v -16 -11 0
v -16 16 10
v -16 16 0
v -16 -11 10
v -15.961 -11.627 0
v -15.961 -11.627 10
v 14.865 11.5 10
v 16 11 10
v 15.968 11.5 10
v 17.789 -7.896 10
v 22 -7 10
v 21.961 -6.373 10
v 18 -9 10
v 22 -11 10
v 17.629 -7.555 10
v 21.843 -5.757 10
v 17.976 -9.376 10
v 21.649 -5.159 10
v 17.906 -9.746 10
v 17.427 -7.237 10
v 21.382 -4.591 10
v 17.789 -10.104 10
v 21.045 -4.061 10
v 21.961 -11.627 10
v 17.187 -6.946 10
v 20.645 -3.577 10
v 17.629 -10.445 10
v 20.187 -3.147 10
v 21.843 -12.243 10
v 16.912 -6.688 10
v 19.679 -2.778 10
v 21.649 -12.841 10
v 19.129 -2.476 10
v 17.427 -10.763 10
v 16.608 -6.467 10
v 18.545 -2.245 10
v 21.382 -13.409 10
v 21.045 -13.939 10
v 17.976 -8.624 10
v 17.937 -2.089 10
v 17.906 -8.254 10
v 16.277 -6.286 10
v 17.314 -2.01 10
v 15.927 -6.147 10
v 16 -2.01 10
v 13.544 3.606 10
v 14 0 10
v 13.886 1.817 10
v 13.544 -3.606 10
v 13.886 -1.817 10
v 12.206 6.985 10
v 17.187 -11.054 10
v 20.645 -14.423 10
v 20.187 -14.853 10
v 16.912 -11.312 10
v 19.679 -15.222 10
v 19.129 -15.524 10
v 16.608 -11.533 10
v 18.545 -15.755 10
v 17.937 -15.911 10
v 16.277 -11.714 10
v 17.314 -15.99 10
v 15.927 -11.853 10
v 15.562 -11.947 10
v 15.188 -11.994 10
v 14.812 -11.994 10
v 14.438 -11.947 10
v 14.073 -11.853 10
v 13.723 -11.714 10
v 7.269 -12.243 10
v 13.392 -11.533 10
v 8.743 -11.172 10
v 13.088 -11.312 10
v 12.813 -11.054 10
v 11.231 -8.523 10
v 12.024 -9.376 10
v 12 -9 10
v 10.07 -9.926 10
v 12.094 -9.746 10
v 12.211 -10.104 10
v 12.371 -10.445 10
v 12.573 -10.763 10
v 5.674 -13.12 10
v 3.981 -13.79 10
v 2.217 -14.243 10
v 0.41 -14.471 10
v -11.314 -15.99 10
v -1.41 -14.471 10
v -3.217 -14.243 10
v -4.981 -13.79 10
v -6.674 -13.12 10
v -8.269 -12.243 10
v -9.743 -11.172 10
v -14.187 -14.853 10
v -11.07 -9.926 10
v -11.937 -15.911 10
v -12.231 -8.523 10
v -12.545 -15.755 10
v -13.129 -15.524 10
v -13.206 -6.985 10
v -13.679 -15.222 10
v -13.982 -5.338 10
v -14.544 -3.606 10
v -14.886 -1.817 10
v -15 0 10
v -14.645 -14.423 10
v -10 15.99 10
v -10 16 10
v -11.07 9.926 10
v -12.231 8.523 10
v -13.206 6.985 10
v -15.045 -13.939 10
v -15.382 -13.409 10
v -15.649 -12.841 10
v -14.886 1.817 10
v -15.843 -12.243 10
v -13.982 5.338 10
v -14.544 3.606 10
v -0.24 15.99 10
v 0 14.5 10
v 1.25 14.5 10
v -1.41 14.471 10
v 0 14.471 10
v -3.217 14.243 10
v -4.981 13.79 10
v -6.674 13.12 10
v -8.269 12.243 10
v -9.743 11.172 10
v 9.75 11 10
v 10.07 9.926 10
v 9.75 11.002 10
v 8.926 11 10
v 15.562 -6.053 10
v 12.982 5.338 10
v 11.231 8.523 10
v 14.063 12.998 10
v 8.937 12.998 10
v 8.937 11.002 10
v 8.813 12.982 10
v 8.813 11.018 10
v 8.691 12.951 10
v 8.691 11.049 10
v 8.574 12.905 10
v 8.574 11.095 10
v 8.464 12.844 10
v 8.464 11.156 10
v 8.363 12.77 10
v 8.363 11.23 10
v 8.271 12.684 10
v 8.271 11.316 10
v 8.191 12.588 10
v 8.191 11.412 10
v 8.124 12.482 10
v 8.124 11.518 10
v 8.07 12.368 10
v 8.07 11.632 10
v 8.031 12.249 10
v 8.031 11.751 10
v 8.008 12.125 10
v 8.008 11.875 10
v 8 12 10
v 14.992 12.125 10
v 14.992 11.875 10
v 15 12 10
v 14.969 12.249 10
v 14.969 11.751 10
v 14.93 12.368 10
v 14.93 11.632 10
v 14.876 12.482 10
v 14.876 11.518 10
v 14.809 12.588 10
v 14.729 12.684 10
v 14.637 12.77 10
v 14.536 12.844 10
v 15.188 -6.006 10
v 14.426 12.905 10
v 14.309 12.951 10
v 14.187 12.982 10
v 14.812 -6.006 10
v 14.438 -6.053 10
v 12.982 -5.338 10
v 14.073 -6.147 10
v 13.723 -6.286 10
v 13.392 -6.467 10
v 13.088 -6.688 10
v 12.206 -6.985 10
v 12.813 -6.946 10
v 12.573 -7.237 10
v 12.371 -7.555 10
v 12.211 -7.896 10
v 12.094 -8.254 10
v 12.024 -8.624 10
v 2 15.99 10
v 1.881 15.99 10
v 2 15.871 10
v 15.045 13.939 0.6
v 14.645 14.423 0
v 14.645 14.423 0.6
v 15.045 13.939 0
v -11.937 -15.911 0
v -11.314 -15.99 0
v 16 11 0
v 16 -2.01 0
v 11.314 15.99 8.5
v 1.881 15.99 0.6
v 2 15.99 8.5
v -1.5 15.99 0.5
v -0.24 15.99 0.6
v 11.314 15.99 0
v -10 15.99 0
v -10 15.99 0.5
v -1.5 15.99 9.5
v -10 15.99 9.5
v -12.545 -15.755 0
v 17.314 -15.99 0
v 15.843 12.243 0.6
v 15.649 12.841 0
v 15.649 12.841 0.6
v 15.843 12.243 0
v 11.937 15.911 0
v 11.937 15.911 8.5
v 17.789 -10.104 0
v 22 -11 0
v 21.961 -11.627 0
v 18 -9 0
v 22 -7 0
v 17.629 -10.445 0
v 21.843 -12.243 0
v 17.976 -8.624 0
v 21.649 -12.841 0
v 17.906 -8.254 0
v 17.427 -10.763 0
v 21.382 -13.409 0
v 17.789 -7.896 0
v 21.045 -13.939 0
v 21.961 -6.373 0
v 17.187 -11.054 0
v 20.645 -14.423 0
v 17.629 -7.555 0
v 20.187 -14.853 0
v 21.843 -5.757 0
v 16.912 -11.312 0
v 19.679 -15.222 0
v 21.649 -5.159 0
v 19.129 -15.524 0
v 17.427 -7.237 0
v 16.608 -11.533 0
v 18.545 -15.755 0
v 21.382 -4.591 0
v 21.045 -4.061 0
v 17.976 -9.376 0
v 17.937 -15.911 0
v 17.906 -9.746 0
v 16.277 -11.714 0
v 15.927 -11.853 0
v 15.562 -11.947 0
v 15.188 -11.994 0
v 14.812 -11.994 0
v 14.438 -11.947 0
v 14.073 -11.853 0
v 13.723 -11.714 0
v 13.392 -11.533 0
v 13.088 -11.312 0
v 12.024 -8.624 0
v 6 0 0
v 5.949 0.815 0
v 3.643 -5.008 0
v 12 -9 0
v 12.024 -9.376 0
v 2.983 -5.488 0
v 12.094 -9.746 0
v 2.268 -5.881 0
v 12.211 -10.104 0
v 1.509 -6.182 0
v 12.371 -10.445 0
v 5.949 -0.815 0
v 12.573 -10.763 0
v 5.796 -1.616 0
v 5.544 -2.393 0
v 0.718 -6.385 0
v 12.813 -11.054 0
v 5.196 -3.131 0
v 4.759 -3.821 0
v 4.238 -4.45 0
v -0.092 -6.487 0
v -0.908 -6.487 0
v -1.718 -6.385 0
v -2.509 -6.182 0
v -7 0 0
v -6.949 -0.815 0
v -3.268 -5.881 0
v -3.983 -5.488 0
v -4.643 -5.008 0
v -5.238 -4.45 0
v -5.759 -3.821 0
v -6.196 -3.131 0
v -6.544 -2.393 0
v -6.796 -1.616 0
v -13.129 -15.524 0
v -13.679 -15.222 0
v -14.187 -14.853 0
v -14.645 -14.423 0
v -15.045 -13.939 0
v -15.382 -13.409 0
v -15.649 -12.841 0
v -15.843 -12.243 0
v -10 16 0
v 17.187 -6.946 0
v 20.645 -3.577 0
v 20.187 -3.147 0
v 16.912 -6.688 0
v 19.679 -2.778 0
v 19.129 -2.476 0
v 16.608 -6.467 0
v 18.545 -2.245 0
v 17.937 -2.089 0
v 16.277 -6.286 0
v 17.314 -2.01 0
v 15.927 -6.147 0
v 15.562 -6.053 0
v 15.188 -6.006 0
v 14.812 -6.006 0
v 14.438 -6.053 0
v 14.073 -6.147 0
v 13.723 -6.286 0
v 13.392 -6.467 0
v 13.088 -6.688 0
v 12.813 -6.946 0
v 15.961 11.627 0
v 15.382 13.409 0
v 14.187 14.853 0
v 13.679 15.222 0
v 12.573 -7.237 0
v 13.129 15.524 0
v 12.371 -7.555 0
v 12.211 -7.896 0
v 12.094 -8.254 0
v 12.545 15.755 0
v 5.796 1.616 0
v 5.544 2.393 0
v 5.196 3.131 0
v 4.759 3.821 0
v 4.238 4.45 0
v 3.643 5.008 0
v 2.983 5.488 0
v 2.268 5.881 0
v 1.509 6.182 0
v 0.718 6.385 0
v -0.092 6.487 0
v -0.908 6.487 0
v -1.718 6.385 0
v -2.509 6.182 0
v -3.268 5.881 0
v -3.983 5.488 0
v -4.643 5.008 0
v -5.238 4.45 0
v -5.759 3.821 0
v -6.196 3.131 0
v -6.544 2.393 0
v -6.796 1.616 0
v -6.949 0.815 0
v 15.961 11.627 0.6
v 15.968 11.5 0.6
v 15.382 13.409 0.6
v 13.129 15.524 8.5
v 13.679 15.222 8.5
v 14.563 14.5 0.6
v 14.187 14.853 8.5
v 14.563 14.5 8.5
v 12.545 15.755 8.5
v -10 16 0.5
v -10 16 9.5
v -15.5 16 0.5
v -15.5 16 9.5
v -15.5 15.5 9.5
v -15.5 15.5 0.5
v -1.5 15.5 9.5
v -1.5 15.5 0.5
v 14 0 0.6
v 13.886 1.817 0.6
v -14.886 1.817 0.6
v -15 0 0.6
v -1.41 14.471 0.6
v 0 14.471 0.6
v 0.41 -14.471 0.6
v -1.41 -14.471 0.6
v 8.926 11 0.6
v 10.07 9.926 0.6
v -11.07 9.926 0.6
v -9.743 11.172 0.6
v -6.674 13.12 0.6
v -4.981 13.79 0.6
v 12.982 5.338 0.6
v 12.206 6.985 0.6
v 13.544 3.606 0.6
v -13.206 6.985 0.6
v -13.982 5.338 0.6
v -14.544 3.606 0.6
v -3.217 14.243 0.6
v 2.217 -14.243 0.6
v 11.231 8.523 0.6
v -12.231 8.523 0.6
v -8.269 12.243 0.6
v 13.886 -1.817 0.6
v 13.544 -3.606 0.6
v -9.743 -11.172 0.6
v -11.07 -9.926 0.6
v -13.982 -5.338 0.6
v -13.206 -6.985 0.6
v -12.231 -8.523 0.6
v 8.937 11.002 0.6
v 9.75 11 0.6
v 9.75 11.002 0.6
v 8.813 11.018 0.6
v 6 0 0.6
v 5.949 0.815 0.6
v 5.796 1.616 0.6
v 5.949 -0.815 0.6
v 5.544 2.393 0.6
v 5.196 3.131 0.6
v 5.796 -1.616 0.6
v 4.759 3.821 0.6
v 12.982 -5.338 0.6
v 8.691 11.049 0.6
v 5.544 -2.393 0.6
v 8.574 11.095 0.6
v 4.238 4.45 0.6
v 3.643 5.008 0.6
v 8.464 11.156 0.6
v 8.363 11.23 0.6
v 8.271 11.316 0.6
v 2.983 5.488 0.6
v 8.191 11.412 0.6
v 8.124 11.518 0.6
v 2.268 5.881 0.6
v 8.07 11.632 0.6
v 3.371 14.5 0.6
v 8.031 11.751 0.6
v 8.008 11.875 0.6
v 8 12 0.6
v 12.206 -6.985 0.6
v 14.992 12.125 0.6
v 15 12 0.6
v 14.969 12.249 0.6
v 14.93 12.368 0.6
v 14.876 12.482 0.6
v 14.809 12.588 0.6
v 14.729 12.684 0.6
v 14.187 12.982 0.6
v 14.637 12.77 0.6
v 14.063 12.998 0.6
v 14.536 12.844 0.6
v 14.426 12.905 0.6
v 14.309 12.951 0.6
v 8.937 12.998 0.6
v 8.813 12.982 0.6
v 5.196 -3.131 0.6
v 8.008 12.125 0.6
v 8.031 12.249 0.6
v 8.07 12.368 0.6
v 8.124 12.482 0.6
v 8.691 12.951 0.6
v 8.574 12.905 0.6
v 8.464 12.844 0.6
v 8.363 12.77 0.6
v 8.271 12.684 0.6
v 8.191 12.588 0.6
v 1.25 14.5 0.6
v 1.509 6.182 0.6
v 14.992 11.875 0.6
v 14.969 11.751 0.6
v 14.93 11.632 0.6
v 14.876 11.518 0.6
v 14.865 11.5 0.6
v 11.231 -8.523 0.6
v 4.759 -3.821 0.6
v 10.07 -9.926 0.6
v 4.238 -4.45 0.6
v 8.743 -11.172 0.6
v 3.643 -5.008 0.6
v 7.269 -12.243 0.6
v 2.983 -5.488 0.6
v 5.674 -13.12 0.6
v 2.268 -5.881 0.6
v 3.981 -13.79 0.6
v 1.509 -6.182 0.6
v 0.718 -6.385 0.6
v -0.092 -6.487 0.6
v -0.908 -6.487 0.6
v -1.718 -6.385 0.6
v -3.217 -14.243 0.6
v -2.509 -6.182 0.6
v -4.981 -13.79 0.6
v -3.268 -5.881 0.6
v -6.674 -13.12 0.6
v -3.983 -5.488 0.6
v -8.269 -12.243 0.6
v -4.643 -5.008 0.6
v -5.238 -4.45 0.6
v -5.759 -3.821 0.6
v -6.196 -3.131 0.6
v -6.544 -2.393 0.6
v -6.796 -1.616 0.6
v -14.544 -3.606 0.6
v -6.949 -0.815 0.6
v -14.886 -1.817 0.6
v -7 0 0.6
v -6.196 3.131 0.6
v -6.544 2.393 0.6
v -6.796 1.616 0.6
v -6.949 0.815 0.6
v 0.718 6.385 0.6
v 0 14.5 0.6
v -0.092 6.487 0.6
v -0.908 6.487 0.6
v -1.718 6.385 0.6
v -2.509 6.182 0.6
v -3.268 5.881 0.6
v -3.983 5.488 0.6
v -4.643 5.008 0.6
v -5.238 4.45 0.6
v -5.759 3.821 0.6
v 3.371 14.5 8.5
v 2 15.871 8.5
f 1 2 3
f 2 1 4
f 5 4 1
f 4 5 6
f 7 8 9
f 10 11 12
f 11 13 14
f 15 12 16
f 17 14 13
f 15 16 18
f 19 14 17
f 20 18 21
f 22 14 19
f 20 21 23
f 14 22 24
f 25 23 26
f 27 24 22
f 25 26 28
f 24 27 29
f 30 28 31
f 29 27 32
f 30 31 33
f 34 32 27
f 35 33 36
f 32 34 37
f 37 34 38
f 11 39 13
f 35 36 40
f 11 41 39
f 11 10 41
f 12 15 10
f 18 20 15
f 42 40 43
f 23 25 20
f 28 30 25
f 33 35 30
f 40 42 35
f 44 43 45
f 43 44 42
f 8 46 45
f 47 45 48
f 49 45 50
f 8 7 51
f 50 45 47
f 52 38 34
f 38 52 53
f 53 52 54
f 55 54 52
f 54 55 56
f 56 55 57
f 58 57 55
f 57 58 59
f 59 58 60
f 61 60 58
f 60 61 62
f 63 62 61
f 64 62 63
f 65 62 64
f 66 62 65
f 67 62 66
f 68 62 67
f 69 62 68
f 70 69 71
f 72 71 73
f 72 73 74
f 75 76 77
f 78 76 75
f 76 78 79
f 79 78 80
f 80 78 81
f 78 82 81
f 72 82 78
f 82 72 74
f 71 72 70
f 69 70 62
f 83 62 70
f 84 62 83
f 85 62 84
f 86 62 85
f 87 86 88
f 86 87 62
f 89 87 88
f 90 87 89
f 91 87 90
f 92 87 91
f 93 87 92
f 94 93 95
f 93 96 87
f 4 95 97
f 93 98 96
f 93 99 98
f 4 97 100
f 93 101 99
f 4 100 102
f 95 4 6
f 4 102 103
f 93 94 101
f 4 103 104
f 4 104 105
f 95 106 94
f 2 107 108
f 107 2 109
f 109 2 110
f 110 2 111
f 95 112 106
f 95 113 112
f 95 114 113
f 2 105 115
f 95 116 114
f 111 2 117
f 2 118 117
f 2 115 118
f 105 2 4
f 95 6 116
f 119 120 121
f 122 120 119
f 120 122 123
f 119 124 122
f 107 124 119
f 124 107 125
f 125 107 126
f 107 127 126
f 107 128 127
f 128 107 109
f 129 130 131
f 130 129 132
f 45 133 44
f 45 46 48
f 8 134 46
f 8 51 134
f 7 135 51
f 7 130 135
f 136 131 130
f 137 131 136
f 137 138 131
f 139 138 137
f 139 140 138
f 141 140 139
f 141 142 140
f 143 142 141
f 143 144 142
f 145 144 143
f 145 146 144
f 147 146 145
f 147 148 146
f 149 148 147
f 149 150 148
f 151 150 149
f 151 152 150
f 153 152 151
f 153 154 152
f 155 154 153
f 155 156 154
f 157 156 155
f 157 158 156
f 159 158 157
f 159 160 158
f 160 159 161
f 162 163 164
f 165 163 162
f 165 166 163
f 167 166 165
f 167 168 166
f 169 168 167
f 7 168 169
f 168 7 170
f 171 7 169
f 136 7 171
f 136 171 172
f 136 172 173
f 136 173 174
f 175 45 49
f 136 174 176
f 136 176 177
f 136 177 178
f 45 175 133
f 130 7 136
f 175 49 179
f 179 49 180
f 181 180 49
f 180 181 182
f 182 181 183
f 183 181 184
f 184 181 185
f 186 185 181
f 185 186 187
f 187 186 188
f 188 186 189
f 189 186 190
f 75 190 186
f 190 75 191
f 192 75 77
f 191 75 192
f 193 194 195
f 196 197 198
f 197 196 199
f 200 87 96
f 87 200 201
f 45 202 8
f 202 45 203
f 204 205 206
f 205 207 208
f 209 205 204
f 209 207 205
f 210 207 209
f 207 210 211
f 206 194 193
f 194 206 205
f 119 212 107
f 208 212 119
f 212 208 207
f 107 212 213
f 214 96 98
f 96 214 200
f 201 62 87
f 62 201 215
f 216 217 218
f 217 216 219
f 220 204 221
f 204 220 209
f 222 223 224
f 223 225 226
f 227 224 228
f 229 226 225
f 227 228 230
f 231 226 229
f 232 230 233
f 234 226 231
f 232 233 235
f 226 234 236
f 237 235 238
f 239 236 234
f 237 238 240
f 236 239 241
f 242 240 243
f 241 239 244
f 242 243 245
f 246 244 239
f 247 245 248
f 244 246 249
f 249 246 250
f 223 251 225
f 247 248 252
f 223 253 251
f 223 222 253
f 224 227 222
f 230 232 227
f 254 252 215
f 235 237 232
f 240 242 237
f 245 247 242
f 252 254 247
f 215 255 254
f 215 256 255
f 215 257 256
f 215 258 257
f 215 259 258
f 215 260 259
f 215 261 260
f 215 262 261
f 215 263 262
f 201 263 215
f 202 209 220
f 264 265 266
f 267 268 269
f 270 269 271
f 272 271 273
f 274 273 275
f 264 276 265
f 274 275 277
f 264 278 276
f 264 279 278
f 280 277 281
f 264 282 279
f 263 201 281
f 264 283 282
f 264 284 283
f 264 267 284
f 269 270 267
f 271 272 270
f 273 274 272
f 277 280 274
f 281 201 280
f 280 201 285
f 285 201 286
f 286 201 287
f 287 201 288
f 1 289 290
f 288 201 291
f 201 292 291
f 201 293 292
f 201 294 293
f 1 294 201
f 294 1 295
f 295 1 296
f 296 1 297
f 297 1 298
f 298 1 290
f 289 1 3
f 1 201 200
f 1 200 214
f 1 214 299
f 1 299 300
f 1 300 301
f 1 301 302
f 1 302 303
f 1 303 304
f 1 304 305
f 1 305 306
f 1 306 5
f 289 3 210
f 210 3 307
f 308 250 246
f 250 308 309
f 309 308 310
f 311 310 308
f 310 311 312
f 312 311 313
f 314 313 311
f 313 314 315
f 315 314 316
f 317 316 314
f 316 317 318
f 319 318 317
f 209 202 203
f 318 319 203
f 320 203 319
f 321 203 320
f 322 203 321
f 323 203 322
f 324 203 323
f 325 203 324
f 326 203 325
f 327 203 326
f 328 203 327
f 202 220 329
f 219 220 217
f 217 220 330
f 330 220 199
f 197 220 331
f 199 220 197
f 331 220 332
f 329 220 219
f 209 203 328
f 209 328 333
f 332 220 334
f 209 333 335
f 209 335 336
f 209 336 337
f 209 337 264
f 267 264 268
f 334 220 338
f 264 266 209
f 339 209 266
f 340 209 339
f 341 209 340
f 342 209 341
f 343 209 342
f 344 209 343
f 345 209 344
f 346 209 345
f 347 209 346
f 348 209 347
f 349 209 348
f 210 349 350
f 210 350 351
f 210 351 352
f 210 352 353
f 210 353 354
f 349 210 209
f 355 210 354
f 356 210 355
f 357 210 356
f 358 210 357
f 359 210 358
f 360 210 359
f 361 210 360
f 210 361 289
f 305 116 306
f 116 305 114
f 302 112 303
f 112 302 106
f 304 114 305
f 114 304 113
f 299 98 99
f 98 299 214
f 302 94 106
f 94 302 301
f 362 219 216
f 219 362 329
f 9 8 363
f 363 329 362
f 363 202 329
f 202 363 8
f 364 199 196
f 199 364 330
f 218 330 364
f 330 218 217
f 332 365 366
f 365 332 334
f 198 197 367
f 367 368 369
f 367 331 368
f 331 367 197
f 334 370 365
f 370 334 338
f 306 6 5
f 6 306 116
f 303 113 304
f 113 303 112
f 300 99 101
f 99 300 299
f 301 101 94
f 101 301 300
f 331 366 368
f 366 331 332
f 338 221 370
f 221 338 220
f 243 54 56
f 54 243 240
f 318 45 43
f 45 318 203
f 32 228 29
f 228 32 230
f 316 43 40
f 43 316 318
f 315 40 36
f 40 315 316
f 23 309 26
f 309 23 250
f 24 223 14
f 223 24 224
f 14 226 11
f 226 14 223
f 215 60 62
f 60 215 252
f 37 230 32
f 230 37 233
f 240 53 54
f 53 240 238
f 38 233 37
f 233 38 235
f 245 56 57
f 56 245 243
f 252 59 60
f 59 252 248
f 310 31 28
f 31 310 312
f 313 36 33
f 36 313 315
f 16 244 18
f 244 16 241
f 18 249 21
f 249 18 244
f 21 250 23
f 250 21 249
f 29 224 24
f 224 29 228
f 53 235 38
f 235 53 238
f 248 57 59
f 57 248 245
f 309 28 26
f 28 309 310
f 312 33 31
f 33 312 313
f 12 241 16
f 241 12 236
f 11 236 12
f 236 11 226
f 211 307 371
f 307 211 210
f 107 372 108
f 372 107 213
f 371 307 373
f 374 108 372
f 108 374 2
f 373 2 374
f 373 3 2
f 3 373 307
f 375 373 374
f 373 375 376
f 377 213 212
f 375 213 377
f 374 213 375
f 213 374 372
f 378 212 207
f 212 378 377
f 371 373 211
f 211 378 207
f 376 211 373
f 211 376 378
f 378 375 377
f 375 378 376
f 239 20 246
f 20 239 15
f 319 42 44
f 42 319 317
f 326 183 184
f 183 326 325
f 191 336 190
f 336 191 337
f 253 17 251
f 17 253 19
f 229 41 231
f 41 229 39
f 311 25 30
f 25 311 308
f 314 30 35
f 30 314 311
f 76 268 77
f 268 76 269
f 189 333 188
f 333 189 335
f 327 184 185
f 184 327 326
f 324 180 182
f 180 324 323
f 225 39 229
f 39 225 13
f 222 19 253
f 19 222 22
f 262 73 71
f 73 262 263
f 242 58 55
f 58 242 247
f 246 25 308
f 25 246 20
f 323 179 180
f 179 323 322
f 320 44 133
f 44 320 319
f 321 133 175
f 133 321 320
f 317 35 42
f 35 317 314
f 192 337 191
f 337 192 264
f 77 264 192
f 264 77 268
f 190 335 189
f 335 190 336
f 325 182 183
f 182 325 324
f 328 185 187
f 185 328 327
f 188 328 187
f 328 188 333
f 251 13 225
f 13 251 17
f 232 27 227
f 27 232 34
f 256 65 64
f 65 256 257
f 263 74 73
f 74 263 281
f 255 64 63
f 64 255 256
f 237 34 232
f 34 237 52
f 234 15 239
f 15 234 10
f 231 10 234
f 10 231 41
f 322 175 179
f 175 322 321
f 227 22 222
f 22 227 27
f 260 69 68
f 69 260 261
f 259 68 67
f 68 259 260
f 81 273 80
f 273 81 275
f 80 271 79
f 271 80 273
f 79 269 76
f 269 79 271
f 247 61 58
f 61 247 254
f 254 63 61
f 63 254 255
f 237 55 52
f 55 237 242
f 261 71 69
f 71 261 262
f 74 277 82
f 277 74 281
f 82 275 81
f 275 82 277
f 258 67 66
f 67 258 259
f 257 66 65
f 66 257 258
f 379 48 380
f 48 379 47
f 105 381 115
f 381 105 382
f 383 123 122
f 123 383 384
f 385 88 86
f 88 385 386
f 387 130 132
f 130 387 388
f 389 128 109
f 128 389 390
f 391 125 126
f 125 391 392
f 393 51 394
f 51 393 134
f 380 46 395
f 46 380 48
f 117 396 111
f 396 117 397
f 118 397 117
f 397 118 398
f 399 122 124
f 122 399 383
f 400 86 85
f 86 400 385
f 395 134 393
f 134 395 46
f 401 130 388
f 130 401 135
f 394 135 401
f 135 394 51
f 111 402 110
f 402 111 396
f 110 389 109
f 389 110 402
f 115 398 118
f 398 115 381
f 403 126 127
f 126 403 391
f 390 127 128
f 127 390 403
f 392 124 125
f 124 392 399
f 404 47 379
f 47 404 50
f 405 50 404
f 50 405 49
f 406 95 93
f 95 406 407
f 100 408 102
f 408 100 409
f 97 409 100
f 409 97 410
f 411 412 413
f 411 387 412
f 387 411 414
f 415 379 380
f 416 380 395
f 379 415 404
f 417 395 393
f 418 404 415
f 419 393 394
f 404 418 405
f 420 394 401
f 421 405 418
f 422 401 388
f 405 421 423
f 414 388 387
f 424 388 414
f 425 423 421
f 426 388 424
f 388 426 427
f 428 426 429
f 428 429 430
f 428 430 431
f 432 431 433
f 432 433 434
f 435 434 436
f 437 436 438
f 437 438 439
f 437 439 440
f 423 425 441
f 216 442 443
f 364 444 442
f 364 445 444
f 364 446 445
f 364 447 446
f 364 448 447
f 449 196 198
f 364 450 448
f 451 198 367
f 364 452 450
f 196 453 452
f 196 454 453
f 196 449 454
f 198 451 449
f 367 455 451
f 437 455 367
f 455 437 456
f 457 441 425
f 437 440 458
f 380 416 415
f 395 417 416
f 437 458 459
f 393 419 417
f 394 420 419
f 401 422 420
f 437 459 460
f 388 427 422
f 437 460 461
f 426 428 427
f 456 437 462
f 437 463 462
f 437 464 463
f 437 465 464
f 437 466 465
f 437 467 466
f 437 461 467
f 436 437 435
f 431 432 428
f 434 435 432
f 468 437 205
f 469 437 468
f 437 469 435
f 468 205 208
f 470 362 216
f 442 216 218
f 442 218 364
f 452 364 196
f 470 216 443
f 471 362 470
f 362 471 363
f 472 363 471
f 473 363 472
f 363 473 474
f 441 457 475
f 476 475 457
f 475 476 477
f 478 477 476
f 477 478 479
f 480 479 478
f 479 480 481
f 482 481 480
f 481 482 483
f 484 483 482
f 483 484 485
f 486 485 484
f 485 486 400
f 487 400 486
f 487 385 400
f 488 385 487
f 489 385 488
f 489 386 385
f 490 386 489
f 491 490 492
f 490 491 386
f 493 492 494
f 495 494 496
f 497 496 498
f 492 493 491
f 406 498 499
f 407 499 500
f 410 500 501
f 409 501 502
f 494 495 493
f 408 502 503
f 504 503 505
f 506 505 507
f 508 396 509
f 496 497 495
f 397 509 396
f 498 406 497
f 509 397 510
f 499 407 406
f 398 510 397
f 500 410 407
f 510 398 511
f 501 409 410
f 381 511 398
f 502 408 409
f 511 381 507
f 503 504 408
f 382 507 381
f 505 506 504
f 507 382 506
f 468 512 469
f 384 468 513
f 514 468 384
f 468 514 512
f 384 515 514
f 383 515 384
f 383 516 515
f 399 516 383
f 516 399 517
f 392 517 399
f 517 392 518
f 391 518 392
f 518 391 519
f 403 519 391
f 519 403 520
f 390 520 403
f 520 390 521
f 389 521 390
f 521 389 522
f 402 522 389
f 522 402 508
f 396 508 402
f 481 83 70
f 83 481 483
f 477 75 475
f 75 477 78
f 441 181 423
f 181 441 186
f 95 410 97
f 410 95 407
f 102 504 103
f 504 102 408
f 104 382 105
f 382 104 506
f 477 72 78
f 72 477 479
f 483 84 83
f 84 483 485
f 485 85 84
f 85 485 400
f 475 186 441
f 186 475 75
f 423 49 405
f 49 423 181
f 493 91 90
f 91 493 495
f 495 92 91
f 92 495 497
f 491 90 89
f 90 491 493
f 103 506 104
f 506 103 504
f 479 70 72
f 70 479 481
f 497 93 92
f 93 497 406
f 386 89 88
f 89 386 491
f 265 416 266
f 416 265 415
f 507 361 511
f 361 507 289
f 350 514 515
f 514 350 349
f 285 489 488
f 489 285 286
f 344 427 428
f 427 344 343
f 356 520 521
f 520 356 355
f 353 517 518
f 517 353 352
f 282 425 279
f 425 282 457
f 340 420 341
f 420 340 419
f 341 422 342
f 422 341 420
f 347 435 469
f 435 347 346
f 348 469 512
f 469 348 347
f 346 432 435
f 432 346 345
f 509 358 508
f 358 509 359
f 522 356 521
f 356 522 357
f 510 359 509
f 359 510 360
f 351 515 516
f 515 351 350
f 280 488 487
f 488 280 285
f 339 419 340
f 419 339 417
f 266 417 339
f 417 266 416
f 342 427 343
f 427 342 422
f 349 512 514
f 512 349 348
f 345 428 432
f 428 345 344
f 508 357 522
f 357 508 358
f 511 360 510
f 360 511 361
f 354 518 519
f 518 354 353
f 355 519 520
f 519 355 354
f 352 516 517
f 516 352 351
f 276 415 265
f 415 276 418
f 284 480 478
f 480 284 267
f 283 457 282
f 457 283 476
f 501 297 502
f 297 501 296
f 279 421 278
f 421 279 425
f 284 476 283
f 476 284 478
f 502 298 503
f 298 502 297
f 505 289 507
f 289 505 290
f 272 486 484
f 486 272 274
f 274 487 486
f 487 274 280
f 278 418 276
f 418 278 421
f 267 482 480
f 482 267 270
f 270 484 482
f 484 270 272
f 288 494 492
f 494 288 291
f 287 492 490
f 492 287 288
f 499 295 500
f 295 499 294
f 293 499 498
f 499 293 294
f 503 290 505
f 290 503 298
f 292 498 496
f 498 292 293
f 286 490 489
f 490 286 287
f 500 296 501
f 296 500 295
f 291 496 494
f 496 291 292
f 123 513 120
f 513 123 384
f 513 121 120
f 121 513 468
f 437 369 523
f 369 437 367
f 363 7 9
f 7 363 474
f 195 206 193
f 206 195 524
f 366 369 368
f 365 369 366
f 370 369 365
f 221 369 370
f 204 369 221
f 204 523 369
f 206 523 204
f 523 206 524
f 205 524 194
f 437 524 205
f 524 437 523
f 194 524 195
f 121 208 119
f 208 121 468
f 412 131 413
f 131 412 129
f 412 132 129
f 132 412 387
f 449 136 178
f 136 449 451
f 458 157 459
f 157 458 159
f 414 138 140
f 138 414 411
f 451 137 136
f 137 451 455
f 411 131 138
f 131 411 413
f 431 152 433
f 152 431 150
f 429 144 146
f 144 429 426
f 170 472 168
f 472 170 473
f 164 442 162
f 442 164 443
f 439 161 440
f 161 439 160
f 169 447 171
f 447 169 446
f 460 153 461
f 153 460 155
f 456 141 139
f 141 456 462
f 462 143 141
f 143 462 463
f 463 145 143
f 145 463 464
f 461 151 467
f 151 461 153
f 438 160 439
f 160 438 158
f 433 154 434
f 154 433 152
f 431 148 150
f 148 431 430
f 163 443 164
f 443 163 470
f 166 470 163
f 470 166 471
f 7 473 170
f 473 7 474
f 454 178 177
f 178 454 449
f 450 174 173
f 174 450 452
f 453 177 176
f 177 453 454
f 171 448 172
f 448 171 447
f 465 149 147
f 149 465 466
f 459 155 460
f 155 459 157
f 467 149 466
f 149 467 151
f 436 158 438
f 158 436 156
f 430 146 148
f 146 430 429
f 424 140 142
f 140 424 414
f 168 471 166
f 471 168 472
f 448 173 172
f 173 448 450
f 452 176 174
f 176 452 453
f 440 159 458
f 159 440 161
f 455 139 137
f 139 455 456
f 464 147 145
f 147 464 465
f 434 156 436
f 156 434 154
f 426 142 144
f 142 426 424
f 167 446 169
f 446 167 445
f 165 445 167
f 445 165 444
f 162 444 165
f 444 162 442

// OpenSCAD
$fn = 50;


union() {
	difference() {
		union() {
			translate(v = [0, 0, 0]) {
				rotate(a = [0, 0, 0]) {
					hull() {
						translate(v = [-11.0000000000, 11.0000000000, 0]) {
							rotate(a = [0, 0, 0]) {
								translate(v = [0, 0, 0]) {
									rotate(a = [0, 0, 0]) {
										cylinder(h = 10, r = 5);
									}
								}
							}
						}
						translate(v = [11.0000000000, 11.0000000000, 0]) {
							rotate(a = [0, 0, 0]) {
								translate(v = [0, 0, 0]) {
									rotate(a = [0, 0, 0]) {
										cylinder(h = 10, r = 5);
									}
								}
							}
						}
						translate(v = [-11.0000000000, -11.0000000000, 0]) {
							rotate(a = [0, 0, 0]) {
								translate(v = [0, 0, 0]) {
									rotate(a = [0, 0, 0]) {
										cylinder(h = 10, r = 5);
									}
								}
							}
						}
						translate(v = [11.0000000000, -11.0000000000, 0]) {
							rotate(a = [0, 0, 0]) {
								translate(v = [0, 0, 0]) {
									rotate(a = [0, 0, 0]) {
										cylinder(h = 10, r = 5);
									}
								}
							}
						}
					}
				}
			}
			translate(v = [7.5000000000, -9.0000000000, 0]) {
				rotate(a = [0, 0, 0]) {
					hull() {
						translate(v = [-9.5000000000, 2.0000000000, 0]) {
							rotate(a = [0, 0, 0]) {
								translate(v = [0, 0, 0]) {
									rotate(a = [0, 0, 0]) {
										cylinder(h = 10, r = 5);
									}
								}
							}
						}
						translate(v = [9.5000000000, 2.0000000000, 0]) {
							rotate(a = [0, 0, 0]) {
								translate(v = [0, 0, 0]) {
									rotate(a = [0, 0, 0]) {
										cylinder(h = 10, r = 5);
									}
								}
							}
						}
						translate(v = [-9.5000000000, -2.0000000000, 0]) {
							rotate(a = [0, 0, 0]) {
								translate(v = [0, 0, 0]) {
									rotate(a = [0, 0, 0]) {
										cylinder(h = 10, r = 5);
									}
								}
							}
						}
						translate(v = [9.5000000000, -2.0000000000, 0]) {
							rotate(a = [0, 0, 0]) {
								translate(v = [0, 0, 0]) {
									rotate(a = [0, 0, 0]) {
										cylinder(h = 10, r = 5);
									}
								}
							}
						}
					}
				}
			}
			translate(v = [-16.0000000000, 10.0000000000, 0]) {
				rotate(a = [0, 0, 0]) {
					cube(size = [6, 6, 10]);
				}
			}
		}
		union() {
			translate(v = [-15.5000000000, 15.5000000000, 0.5000000000]) {
				rotate(a = [0, 0, 0]) {
					cube(size = [14, 0.5000000000, 9.0000000000]);
				}
			}
			translate(v = [15.0000000000, -9.0000000000, -125.0000000000]) {
				rotate(a = [0, 0, 0]) {
					cylinder(h = 250, r = 3.0000000000);
				}
			}
			translate(v = [-0.5000000000, 0.0000000000, 0.6000000000]) {
				rotate(a = [0, 0, 0]) {
					cylinder(h = 12.4000000000, r = 14.5000000000);
				}
			}
			translate(v = [-0.5000000000, 0.0000000000, -5.0000000000]) {
				rotate(a = [0, 0, 0]) {
					cylinder(h = 10, r = 6.5000000000);
				}
			}
			translate(v = [0.0000000000, 11.5000000000, 0.6000000000]) {
				rotate(a = [0, 0, 0]) {
					cube(size = [16.0000000000, 3, 12.4000000000]);
				}
			}
			translate(v = [2.0000000000, 11.5000000000, 8.5000000000]) {
				rotate(a = [0, 0, 0]) {
					cube(size = [14.0000000000, 6, 1.5000000000]);
				}
			}
			translate(v = [-3.0000000000, 18.7500000000, 0.6000000000]) {
				rotate(a = [0, 0, -45]) {
					cube(size = [10, 1.5000000000, 12.4000000000]);
				}
			}
			translate(v = [2.2500000000, 11.0000000000, 0.6000000000]) {
				rotate(a = [0, 0, 0]) {
					cube(size = [7.5000000000, 2, 9.4000000000]);
				}
			}
		}
	}
	union() {
		translate(v = [11.5000000000, 12, 0]) {
			rotate(a = [0, 0, 0]) {
				hull() {
					translate(v = [2.5000000000, 0, 0]) {
						rotate(a = [0, 0, 0]) {
							translate(v = [0, 0, 0]) {
								rotate(a = [0, 0, 0]) {
									cylinder(h = 10, r = 1.0000000000);
								}
							}
						}
					}
					translate(v = [-2.5000000000, 0, 0]) {
						rotate(a = [0, 0, 0]) {
							translate(v = [0, 0, 0]) {
								rotate(a = [0, 0, 0]) {
									cylinder(h = 10, r = 1.0000000000);
								}
							}
						}
					}
				}
			}
		}
	}
}
